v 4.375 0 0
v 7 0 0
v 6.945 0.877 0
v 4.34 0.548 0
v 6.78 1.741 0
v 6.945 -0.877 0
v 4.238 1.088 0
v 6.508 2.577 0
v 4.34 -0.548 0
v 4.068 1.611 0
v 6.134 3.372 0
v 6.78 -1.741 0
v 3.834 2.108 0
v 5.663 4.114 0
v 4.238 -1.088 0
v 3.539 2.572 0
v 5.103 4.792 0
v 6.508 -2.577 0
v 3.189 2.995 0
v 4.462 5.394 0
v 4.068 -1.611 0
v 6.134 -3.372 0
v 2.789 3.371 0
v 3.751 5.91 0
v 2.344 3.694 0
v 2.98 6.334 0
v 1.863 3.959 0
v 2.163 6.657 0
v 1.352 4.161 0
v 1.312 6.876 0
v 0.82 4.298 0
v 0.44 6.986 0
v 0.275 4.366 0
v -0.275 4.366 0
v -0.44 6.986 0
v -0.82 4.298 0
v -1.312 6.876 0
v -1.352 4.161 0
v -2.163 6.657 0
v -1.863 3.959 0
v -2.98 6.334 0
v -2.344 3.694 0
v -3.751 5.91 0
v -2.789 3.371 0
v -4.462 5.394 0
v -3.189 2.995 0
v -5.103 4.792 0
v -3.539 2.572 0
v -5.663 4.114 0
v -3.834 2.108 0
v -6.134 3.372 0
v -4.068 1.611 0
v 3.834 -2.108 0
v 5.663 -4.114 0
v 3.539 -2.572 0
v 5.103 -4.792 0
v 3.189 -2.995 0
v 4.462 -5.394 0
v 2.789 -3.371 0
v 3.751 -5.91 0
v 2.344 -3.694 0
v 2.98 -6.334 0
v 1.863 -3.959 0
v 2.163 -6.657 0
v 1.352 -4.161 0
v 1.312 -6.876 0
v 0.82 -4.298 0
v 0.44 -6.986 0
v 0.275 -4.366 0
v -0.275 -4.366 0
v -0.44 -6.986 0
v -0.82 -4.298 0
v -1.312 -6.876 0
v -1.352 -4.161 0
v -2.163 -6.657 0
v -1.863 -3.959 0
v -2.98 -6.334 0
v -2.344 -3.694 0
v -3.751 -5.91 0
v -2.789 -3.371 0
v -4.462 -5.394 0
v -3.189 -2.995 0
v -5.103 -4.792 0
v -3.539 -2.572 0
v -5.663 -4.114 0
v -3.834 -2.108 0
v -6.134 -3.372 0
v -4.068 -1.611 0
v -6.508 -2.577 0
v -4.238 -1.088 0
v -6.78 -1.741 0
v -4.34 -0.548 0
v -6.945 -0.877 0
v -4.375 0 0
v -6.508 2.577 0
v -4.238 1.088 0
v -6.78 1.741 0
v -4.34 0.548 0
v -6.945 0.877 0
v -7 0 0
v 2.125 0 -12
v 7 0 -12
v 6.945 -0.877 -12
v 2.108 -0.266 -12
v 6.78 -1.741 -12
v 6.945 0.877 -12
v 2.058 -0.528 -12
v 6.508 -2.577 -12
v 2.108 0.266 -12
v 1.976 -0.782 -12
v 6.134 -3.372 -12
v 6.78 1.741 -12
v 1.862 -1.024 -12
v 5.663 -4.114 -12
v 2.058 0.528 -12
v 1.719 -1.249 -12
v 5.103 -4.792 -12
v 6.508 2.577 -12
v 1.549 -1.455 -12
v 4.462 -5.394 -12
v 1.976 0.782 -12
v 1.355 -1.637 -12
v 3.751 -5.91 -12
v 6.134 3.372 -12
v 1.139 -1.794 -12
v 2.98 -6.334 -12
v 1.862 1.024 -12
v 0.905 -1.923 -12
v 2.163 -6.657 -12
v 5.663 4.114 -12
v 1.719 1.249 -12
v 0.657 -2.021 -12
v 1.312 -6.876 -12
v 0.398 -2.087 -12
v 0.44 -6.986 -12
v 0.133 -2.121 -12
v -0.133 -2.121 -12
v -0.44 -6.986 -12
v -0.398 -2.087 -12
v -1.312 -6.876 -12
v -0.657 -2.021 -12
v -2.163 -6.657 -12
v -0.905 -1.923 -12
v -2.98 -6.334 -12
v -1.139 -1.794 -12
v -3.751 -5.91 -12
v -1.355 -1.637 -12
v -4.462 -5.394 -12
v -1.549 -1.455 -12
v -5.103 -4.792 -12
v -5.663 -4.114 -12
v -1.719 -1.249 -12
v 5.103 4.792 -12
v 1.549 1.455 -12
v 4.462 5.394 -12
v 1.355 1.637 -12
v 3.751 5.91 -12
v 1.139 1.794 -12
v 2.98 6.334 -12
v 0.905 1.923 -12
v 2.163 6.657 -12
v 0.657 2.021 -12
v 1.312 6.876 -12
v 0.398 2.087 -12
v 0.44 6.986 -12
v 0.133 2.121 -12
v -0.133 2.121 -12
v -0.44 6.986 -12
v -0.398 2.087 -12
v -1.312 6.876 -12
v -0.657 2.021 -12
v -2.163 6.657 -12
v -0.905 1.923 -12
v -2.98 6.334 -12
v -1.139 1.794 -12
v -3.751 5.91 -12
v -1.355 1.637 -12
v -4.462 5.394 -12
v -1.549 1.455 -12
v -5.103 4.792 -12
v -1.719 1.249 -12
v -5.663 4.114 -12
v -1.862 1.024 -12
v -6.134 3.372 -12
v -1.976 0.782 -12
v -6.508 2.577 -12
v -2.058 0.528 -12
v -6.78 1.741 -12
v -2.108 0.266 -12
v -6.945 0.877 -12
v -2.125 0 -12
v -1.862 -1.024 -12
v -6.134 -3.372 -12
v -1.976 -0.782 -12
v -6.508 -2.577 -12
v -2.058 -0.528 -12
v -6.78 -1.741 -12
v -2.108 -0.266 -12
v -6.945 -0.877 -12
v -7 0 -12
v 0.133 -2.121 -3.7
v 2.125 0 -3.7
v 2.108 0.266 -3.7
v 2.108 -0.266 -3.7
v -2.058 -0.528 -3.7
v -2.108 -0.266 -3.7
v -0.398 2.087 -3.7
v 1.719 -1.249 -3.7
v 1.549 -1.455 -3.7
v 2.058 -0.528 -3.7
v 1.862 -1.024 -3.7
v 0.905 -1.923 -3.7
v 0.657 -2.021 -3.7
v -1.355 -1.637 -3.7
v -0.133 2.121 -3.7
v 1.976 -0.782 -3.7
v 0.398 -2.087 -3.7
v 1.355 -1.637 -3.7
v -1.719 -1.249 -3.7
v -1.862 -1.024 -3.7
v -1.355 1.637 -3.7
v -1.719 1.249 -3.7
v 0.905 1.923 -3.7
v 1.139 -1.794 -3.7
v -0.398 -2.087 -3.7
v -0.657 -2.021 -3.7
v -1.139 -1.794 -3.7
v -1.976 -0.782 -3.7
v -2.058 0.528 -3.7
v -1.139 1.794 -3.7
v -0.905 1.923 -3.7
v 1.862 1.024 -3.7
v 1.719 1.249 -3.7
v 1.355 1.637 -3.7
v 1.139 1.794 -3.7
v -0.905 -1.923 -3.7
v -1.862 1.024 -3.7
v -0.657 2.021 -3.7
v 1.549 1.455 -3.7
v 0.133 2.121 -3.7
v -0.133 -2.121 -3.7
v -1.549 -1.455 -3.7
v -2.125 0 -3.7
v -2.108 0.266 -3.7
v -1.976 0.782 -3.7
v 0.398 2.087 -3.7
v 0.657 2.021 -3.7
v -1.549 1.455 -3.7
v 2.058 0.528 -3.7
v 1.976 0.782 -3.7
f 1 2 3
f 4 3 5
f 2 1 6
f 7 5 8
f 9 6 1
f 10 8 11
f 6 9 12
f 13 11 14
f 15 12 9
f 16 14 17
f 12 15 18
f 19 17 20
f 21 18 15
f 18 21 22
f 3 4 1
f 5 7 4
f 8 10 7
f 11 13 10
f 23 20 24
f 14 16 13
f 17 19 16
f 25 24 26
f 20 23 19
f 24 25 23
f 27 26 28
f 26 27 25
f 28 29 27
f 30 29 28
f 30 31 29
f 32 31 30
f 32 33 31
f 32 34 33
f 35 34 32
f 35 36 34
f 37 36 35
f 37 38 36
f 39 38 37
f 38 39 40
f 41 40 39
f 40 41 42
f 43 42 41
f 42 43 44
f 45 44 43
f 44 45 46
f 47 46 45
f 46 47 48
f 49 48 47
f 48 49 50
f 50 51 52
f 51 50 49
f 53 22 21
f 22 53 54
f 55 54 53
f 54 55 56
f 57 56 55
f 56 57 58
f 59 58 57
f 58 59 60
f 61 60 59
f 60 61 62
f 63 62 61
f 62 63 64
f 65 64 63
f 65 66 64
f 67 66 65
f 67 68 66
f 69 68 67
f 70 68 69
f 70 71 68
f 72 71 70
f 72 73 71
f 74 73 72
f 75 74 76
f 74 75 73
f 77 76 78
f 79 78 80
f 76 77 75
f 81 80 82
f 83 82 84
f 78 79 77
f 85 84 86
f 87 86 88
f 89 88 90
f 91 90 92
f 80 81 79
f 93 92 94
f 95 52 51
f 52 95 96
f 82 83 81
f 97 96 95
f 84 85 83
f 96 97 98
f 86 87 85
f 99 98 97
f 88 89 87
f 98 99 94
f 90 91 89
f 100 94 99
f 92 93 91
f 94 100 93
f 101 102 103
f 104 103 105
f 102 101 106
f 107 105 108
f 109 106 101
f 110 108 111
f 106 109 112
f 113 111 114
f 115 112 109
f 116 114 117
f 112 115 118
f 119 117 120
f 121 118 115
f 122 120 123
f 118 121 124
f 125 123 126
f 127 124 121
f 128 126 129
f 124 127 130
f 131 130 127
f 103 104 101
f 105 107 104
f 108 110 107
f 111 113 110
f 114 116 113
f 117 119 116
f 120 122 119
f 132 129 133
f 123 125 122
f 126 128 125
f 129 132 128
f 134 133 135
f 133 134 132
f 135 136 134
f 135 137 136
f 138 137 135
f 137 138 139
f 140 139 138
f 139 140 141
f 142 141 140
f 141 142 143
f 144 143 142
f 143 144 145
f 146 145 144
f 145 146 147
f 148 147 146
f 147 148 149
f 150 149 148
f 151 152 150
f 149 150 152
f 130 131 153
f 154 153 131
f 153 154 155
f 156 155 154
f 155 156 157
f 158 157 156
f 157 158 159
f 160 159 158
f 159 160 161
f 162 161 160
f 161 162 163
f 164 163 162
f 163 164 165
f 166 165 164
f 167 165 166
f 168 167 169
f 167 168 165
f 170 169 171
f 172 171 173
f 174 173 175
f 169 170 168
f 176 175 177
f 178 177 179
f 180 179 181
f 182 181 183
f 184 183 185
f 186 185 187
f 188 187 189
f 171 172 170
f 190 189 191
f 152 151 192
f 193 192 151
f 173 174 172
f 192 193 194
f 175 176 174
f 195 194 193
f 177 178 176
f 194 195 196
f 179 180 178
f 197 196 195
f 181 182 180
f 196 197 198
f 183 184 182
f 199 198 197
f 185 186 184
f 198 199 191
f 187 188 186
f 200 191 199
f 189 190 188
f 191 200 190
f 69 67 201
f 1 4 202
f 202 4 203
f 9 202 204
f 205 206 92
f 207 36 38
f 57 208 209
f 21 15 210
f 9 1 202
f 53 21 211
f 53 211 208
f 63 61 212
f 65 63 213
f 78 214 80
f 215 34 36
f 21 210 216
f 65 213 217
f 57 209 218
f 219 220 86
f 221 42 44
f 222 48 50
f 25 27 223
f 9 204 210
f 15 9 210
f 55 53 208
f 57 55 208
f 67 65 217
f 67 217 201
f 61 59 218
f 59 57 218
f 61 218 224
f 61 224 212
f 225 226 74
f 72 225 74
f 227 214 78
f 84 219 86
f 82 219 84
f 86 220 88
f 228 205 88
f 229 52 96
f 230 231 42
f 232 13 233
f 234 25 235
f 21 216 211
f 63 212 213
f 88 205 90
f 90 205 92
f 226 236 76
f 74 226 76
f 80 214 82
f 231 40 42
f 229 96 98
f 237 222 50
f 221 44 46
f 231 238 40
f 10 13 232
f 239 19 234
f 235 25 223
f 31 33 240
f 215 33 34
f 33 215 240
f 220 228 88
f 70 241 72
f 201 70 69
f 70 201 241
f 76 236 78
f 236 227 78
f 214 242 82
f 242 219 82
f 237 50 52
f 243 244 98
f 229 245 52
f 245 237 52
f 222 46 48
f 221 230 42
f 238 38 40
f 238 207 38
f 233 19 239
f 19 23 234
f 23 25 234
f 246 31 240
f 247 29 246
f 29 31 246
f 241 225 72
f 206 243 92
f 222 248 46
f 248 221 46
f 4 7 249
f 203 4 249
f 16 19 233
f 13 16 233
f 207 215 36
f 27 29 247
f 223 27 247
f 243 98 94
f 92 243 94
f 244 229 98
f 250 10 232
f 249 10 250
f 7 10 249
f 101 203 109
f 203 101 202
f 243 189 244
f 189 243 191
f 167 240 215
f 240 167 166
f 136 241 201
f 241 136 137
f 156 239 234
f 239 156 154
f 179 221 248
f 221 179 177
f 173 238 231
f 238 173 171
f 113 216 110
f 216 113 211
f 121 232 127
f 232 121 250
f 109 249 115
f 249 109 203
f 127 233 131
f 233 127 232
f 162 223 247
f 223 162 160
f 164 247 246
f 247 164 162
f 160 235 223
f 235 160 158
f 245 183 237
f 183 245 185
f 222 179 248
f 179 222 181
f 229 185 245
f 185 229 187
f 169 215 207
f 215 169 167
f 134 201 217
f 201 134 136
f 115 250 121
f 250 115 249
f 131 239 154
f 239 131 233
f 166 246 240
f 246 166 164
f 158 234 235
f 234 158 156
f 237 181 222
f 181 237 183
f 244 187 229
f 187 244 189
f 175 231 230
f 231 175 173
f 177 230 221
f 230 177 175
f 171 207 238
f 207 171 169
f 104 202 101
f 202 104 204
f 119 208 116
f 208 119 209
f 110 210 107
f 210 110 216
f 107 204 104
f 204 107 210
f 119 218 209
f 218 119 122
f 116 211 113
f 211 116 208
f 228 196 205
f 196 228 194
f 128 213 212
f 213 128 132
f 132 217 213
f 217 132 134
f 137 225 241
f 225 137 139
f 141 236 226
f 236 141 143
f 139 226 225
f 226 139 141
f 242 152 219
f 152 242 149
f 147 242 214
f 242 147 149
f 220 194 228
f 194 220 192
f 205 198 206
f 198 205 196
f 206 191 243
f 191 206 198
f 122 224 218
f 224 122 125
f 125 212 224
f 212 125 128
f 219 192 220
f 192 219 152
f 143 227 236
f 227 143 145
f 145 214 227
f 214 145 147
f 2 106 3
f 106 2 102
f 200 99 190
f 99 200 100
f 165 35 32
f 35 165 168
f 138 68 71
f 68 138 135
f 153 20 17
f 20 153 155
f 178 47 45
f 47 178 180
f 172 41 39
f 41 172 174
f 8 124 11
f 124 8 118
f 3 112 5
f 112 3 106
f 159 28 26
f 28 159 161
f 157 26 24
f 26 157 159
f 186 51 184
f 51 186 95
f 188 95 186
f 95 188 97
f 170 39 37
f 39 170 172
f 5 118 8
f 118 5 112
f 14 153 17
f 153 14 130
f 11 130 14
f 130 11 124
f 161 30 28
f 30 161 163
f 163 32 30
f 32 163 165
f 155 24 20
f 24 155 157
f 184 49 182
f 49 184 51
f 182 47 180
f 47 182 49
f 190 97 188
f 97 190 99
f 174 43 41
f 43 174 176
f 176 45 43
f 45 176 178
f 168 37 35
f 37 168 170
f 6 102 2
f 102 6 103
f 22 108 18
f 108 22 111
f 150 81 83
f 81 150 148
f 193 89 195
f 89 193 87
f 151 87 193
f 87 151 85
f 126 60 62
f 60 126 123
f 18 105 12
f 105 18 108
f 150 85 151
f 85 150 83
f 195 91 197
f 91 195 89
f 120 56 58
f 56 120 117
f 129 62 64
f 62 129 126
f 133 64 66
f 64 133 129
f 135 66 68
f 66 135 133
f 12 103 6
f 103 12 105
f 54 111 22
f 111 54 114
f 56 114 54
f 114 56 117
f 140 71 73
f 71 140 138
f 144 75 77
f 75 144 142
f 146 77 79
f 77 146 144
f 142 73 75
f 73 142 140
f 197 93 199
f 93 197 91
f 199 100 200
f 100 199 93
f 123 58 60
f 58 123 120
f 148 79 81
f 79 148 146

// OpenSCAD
$fn = 50;


difference() {
	union() {
		translate(v = [0, 0, -12.0000000000]) {
			cylinder(h = 12, r = 7.0000000000);
		}
	}
	union() {
		translate(v = [0, 0, 0]) {
			rotate(a = [0, 0, 0]) {
				difference() {
					union() {
						translate(v = [0, 0, -12.0000000000]) {
							cylinder(h = 12, r = 2.0000000000);
						}
						translate(v = [0, 0, -3.7000000000]) {
							cylinder(h = 3.7000000000, r1 = 2.1250000000, r2 = 4.3750000000);
						}
						translate(v = [0, 0, -12.0000000000]) {
							cylinder(h = 12, r = 2.1250000000);
						}
						translate(v = [0, 0, -12.0000000000]) {
							cylinder(h = 12, r = 2.0000000000);
						}
					}
					union();
				}
			}
		}
	}
}
